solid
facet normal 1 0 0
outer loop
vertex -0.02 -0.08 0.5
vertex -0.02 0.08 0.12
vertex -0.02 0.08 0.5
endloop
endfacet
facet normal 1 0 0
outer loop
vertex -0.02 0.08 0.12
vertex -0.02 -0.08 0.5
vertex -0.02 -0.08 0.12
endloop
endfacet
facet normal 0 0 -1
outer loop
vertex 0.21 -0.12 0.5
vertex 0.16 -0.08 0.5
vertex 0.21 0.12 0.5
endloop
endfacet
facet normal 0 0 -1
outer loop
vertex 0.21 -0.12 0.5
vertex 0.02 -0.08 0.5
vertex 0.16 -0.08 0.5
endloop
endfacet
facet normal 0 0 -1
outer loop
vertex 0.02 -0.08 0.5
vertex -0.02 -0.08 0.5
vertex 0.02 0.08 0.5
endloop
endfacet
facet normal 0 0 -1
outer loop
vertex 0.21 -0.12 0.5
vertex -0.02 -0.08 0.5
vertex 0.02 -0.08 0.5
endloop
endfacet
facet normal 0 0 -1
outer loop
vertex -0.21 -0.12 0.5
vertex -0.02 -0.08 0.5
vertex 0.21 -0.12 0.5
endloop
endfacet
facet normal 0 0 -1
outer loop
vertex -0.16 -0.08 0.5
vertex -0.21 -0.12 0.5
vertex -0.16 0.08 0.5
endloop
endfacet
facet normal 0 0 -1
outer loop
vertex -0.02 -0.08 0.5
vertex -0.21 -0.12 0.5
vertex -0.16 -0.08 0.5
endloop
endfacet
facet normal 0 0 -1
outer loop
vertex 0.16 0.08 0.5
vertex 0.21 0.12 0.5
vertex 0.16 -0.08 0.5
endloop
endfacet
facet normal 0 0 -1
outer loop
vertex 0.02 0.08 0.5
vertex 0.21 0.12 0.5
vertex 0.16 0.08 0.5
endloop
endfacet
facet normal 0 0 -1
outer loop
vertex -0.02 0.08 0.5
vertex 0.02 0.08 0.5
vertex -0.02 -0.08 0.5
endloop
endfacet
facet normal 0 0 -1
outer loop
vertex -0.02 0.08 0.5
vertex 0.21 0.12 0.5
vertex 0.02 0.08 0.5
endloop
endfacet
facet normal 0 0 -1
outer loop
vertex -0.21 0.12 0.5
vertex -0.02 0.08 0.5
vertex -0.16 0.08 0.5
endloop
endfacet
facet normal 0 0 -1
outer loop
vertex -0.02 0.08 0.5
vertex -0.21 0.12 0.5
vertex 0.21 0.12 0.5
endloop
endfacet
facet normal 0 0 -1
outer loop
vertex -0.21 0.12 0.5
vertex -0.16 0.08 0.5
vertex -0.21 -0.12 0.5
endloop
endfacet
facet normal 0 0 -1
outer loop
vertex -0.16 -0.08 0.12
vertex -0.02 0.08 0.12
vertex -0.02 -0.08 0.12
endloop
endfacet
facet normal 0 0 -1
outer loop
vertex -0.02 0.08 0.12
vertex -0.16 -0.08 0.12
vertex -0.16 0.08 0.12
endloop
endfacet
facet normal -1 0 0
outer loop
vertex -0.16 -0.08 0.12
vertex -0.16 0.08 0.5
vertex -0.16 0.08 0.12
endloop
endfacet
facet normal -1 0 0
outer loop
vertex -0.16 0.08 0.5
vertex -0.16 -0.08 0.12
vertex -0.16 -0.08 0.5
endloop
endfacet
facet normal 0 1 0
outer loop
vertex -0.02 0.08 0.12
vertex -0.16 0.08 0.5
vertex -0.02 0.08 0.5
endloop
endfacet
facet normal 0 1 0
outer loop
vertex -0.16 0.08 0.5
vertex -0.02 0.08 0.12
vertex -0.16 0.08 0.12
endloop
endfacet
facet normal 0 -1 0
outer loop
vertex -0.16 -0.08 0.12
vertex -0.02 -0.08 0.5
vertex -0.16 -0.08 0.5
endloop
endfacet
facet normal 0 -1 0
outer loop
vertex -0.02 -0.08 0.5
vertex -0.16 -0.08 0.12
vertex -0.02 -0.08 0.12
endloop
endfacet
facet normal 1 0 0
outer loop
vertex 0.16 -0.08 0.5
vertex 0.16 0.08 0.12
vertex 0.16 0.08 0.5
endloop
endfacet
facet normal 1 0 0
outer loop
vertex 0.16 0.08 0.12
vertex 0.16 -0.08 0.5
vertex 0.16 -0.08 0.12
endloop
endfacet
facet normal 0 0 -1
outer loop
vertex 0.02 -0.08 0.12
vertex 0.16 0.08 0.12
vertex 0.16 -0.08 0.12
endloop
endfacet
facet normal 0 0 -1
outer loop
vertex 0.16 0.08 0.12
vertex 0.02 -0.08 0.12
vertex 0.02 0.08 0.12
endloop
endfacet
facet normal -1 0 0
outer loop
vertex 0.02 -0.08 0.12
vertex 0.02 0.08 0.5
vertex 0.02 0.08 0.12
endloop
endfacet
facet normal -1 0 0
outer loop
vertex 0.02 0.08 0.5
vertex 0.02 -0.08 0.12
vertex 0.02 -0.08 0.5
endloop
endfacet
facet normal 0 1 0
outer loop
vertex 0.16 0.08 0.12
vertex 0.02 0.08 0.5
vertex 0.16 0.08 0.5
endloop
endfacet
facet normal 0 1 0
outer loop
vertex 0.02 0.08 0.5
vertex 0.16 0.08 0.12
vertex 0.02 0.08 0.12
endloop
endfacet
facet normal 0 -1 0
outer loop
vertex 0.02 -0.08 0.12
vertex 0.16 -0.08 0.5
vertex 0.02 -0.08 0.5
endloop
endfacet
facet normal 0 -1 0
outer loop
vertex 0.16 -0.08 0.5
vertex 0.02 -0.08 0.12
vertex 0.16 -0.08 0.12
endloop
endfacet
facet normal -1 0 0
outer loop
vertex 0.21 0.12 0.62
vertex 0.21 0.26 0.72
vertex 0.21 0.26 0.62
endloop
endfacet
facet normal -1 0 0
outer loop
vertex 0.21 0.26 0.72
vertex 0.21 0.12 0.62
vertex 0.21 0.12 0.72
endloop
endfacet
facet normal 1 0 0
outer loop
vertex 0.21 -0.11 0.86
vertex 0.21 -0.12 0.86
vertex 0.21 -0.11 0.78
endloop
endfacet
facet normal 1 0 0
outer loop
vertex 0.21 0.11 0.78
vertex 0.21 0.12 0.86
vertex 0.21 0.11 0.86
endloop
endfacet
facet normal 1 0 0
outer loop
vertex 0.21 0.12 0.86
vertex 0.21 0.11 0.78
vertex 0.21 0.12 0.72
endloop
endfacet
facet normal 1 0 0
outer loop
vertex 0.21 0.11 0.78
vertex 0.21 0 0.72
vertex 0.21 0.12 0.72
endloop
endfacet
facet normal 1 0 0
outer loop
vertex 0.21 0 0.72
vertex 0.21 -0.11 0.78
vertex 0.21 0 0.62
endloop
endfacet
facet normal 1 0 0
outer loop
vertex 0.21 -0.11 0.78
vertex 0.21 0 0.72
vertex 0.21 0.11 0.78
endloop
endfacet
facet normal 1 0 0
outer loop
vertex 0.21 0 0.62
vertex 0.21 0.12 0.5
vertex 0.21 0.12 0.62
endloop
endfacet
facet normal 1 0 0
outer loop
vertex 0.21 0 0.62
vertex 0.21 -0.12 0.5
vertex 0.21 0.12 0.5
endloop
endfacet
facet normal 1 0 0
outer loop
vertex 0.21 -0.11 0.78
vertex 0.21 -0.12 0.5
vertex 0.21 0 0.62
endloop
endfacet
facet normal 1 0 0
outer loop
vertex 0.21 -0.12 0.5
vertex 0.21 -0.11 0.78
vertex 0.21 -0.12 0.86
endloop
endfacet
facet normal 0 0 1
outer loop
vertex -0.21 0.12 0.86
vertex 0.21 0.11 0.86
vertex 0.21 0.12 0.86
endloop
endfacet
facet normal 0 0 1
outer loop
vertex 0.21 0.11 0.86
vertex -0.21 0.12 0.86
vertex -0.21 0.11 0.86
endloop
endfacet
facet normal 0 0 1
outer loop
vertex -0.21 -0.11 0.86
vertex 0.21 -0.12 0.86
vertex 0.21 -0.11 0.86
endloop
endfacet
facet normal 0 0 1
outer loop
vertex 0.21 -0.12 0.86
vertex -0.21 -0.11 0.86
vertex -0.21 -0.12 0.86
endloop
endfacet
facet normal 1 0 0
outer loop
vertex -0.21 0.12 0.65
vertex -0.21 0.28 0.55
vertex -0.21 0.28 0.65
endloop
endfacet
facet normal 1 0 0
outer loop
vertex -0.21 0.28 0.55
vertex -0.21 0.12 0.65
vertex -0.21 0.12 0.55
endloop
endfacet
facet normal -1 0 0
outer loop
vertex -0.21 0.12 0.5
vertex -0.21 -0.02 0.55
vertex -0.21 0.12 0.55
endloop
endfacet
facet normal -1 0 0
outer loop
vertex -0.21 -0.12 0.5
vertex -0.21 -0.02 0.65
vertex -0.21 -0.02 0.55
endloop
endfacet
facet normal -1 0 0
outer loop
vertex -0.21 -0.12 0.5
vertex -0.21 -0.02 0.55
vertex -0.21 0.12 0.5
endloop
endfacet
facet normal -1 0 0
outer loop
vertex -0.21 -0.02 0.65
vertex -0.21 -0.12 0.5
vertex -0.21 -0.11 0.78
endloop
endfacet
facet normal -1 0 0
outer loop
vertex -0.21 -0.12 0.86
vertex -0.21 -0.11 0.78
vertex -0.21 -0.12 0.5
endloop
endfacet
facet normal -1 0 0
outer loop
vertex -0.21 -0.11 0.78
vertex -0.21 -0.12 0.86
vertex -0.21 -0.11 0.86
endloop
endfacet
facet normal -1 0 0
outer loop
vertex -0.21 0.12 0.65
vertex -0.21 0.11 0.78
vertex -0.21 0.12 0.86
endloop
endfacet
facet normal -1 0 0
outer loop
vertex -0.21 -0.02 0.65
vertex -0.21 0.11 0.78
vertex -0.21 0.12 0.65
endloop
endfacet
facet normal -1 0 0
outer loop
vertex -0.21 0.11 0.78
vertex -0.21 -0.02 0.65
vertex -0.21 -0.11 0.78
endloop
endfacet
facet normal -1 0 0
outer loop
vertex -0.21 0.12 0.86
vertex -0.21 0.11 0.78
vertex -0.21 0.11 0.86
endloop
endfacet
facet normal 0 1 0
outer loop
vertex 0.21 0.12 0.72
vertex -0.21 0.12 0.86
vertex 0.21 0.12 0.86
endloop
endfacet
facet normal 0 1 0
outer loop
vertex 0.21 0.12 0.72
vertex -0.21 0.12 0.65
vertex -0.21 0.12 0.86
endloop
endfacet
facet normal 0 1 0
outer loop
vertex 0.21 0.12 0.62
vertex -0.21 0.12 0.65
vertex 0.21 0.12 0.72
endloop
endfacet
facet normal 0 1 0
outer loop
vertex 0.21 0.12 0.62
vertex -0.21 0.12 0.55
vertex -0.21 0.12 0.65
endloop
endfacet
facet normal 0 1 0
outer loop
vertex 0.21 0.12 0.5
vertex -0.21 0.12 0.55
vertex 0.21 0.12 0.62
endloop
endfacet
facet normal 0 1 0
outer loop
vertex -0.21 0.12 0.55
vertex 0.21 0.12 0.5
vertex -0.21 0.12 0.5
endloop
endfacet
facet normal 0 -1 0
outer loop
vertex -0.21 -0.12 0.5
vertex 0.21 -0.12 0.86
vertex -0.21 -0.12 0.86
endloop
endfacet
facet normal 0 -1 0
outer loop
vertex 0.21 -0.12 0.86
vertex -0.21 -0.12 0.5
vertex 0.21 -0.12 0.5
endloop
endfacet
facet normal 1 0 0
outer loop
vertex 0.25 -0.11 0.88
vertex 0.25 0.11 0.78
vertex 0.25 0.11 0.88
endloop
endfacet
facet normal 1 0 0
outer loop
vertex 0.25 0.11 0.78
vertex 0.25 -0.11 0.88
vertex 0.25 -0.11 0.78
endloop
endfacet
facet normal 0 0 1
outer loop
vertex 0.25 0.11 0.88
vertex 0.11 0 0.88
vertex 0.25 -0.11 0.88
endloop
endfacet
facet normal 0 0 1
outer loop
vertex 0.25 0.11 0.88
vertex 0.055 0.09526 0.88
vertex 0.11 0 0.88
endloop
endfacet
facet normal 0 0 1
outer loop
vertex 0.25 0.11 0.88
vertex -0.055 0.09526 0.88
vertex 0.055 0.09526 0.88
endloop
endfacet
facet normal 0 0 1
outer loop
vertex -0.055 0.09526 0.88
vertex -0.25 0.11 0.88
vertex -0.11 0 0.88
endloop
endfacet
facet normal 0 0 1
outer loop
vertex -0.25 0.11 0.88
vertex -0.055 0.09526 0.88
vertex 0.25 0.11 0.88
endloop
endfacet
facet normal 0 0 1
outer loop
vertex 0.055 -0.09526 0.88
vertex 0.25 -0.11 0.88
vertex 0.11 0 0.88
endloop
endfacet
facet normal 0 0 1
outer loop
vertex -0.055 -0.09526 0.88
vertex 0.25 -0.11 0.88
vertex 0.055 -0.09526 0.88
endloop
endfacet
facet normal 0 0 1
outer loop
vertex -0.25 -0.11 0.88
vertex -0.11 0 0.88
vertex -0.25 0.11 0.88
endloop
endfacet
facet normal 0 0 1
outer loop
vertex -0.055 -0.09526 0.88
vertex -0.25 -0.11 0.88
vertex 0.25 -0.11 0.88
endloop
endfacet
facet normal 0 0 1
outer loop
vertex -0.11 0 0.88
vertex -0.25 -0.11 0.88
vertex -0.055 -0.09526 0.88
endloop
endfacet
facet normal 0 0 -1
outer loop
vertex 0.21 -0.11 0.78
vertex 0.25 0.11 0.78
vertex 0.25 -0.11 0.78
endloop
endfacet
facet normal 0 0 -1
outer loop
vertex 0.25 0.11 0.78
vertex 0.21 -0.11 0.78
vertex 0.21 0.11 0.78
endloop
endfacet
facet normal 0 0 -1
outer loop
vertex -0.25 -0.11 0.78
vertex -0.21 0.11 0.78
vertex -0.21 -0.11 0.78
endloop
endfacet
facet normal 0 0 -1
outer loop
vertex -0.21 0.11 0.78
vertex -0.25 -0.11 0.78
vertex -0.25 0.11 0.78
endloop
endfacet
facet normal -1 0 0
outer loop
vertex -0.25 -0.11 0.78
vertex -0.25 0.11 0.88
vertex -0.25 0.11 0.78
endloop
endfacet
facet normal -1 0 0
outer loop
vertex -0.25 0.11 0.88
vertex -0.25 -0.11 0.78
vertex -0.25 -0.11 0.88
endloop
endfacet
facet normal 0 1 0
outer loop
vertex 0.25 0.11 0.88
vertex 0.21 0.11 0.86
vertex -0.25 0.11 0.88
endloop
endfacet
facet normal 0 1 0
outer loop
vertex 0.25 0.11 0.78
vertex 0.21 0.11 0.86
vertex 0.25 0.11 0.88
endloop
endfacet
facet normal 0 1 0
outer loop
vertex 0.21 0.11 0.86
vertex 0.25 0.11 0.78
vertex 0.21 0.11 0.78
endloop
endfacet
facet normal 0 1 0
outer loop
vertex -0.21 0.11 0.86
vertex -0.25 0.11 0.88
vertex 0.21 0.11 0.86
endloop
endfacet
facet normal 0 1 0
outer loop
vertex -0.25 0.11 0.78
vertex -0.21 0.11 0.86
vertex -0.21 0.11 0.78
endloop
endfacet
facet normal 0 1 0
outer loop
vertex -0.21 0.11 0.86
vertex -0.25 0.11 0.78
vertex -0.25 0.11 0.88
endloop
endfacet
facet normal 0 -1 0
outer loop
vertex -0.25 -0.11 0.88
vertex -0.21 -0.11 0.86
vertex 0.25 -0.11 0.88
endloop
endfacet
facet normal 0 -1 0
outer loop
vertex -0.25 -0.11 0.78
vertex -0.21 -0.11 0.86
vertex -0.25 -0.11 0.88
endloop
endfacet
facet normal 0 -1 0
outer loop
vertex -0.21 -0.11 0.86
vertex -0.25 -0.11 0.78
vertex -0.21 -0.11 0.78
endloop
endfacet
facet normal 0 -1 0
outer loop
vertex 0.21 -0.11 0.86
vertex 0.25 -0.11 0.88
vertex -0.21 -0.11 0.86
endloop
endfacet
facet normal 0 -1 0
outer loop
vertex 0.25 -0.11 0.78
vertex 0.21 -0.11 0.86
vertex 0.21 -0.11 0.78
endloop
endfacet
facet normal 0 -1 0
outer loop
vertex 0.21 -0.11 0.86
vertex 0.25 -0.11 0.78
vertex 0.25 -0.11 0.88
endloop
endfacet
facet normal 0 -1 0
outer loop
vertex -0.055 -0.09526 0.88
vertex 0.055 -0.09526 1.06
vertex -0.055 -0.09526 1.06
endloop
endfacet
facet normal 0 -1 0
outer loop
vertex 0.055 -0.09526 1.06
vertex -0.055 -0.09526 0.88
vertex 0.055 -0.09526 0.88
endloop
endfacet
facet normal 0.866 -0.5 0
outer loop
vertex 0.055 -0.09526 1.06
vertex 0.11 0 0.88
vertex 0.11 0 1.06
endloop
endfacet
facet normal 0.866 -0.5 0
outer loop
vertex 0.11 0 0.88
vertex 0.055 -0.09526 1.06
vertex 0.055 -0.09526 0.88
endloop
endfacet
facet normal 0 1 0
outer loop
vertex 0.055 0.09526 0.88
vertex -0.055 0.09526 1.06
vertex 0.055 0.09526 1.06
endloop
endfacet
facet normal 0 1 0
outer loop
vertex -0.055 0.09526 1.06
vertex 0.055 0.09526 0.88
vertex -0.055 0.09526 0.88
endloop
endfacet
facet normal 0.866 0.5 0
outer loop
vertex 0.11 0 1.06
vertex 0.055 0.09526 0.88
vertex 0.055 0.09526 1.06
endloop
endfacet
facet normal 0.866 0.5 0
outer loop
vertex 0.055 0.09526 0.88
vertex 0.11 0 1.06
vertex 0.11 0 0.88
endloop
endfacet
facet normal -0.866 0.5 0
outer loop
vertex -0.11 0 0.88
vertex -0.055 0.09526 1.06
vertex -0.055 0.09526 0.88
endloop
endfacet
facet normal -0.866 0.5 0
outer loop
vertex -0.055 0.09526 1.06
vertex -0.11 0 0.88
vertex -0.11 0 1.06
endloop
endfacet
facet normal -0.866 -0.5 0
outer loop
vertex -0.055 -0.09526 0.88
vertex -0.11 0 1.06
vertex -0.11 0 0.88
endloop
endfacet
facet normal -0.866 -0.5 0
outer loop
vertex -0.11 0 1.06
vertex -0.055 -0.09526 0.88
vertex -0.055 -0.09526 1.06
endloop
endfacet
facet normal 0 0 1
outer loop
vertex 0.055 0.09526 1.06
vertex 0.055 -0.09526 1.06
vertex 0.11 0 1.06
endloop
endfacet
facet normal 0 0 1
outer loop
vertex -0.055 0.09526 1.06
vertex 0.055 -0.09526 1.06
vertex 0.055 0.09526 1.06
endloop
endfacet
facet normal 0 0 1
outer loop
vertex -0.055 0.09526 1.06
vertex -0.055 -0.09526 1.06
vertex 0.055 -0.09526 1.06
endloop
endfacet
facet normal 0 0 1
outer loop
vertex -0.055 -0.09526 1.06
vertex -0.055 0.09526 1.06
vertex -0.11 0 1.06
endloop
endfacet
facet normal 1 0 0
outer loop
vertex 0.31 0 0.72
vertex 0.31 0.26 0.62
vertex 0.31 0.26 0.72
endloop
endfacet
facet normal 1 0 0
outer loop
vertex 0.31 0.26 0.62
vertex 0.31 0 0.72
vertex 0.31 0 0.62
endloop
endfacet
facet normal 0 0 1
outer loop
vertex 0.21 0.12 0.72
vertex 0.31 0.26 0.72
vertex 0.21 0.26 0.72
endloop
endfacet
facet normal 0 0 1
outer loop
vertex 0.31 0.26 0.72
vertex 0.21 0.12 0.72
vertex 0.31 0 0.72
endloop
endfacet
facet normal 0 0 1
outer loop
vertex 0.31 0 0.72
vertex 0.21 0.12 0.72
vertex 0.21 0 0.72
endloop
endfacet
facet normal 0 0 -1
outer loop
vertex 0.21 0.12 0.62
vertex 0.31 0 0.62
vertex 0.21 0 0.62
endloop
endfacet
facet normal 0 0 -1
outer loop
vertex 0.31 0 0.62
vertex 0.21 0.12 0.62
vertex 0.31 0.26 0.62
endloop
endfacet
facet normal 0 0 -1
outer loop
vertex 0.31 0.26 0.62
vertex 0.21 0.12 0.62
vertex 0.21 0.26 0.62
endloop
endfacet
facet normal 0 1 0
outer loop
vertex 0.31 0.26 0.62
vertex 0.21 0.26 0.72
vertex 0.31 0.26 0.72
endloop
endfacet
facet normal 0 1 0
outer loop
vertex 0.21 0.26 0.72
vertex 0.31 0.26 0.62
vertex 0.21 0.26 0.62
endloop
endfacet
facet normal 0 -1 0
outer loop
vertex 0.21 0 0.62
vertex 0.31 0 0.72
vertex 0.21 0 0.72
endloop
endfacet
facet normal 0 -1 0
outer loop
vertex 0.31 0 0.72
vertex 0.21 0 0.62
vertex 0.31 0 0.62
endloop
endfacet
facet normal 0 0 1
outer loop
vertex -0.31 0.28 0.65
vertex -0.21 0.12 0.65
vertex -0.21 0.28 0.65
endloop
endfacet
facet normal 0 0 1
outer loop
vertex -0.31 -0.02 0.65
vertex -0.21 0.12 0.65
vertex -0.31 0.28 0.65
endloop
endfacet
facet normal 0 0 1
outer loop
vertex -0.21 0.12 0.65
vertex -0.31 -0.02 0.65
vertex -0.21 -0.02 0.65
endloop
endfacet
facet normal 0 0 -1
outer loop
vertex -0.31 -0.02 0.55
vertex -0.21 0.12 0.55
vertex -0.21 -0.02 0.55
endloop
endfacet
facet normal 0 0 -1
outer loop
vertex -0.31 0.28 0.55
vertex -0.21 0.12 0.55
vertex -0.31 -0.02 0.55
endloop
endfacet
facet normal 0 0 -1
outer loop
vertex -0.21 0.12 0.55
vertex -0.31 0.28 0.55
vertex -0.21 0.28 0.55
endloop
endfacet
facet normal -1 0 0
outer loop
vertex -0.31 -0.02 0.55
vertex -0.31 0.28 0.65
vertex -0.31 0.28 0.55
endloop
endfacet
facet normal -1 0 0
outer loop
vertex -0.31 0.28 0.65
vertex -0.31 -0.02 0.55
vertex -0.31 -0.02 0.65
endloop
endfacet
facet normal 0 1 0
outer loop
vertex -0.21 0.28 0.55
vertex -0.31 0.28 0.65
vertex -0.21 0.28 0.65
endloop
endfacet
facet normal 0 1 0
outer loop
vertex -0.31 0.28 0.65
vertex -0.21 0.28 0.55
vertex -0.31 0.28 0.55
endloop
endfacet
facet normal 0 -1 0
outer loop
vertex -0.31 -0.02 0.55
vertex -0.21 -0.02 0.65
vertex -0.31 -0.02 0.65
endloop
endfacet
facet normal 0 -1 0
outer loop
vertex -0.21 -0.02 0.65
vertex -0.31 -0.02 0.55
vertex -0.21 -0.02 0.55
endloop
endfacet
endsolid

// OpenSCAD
union() {
  union() {
    union() {
      union() {
        union() {
          union() {
            translate([-0.16, 0, 0]) {
              translate([0, -8.0e-2, 0]) {
                translate([0, 0, 0.12]) {
                  cube([0.14, 0.16, 0.38]);
                }
              }
            }
            translate([2.0e-2, 0, 0]) {
              translate([0, -8.0e-2, 0]) {
                translate([0, 0, 0.12]) {
                  cube([0.14, 0.16, 0.38]);
                }
              }
            }
          }
          translate([-0.21, 0, 0]) {
            translate([0, -0.12, 0]) {
              translate([0, 0, 0.5]) {
                cube([0.42, 0.24, 0.36]);
              }
            }
          }
        }
        translate([-0.25, 0, 0]) {
          translate([0, -0.11, 0]) {
            translate([0, 0, 0.78]) {
              cube([0.5, 0.22, 0.1]);
            }
          }
        }
      }
      translate([0, 0, 0.88]) {
        cylinder(h = 0.18, r = 0.11, $fn = 6);
      }
    }
    translate([0.21, 0, 0]) {
      translate([0, 0.0, 0]) {
        translate([0, 0, 0.62]) {
          cube([0.1, 0.26, 0.1]);
        }
      }
    }
  }
  translate([-0.31, 0, 0]) {
    translate([0, -2.0e-2, 0]) {
      translate([0, 0, 0.55]) {
        cube([0.1, 0.3, 0.1]);
      }
    }
  }
}
$fn = 50;
